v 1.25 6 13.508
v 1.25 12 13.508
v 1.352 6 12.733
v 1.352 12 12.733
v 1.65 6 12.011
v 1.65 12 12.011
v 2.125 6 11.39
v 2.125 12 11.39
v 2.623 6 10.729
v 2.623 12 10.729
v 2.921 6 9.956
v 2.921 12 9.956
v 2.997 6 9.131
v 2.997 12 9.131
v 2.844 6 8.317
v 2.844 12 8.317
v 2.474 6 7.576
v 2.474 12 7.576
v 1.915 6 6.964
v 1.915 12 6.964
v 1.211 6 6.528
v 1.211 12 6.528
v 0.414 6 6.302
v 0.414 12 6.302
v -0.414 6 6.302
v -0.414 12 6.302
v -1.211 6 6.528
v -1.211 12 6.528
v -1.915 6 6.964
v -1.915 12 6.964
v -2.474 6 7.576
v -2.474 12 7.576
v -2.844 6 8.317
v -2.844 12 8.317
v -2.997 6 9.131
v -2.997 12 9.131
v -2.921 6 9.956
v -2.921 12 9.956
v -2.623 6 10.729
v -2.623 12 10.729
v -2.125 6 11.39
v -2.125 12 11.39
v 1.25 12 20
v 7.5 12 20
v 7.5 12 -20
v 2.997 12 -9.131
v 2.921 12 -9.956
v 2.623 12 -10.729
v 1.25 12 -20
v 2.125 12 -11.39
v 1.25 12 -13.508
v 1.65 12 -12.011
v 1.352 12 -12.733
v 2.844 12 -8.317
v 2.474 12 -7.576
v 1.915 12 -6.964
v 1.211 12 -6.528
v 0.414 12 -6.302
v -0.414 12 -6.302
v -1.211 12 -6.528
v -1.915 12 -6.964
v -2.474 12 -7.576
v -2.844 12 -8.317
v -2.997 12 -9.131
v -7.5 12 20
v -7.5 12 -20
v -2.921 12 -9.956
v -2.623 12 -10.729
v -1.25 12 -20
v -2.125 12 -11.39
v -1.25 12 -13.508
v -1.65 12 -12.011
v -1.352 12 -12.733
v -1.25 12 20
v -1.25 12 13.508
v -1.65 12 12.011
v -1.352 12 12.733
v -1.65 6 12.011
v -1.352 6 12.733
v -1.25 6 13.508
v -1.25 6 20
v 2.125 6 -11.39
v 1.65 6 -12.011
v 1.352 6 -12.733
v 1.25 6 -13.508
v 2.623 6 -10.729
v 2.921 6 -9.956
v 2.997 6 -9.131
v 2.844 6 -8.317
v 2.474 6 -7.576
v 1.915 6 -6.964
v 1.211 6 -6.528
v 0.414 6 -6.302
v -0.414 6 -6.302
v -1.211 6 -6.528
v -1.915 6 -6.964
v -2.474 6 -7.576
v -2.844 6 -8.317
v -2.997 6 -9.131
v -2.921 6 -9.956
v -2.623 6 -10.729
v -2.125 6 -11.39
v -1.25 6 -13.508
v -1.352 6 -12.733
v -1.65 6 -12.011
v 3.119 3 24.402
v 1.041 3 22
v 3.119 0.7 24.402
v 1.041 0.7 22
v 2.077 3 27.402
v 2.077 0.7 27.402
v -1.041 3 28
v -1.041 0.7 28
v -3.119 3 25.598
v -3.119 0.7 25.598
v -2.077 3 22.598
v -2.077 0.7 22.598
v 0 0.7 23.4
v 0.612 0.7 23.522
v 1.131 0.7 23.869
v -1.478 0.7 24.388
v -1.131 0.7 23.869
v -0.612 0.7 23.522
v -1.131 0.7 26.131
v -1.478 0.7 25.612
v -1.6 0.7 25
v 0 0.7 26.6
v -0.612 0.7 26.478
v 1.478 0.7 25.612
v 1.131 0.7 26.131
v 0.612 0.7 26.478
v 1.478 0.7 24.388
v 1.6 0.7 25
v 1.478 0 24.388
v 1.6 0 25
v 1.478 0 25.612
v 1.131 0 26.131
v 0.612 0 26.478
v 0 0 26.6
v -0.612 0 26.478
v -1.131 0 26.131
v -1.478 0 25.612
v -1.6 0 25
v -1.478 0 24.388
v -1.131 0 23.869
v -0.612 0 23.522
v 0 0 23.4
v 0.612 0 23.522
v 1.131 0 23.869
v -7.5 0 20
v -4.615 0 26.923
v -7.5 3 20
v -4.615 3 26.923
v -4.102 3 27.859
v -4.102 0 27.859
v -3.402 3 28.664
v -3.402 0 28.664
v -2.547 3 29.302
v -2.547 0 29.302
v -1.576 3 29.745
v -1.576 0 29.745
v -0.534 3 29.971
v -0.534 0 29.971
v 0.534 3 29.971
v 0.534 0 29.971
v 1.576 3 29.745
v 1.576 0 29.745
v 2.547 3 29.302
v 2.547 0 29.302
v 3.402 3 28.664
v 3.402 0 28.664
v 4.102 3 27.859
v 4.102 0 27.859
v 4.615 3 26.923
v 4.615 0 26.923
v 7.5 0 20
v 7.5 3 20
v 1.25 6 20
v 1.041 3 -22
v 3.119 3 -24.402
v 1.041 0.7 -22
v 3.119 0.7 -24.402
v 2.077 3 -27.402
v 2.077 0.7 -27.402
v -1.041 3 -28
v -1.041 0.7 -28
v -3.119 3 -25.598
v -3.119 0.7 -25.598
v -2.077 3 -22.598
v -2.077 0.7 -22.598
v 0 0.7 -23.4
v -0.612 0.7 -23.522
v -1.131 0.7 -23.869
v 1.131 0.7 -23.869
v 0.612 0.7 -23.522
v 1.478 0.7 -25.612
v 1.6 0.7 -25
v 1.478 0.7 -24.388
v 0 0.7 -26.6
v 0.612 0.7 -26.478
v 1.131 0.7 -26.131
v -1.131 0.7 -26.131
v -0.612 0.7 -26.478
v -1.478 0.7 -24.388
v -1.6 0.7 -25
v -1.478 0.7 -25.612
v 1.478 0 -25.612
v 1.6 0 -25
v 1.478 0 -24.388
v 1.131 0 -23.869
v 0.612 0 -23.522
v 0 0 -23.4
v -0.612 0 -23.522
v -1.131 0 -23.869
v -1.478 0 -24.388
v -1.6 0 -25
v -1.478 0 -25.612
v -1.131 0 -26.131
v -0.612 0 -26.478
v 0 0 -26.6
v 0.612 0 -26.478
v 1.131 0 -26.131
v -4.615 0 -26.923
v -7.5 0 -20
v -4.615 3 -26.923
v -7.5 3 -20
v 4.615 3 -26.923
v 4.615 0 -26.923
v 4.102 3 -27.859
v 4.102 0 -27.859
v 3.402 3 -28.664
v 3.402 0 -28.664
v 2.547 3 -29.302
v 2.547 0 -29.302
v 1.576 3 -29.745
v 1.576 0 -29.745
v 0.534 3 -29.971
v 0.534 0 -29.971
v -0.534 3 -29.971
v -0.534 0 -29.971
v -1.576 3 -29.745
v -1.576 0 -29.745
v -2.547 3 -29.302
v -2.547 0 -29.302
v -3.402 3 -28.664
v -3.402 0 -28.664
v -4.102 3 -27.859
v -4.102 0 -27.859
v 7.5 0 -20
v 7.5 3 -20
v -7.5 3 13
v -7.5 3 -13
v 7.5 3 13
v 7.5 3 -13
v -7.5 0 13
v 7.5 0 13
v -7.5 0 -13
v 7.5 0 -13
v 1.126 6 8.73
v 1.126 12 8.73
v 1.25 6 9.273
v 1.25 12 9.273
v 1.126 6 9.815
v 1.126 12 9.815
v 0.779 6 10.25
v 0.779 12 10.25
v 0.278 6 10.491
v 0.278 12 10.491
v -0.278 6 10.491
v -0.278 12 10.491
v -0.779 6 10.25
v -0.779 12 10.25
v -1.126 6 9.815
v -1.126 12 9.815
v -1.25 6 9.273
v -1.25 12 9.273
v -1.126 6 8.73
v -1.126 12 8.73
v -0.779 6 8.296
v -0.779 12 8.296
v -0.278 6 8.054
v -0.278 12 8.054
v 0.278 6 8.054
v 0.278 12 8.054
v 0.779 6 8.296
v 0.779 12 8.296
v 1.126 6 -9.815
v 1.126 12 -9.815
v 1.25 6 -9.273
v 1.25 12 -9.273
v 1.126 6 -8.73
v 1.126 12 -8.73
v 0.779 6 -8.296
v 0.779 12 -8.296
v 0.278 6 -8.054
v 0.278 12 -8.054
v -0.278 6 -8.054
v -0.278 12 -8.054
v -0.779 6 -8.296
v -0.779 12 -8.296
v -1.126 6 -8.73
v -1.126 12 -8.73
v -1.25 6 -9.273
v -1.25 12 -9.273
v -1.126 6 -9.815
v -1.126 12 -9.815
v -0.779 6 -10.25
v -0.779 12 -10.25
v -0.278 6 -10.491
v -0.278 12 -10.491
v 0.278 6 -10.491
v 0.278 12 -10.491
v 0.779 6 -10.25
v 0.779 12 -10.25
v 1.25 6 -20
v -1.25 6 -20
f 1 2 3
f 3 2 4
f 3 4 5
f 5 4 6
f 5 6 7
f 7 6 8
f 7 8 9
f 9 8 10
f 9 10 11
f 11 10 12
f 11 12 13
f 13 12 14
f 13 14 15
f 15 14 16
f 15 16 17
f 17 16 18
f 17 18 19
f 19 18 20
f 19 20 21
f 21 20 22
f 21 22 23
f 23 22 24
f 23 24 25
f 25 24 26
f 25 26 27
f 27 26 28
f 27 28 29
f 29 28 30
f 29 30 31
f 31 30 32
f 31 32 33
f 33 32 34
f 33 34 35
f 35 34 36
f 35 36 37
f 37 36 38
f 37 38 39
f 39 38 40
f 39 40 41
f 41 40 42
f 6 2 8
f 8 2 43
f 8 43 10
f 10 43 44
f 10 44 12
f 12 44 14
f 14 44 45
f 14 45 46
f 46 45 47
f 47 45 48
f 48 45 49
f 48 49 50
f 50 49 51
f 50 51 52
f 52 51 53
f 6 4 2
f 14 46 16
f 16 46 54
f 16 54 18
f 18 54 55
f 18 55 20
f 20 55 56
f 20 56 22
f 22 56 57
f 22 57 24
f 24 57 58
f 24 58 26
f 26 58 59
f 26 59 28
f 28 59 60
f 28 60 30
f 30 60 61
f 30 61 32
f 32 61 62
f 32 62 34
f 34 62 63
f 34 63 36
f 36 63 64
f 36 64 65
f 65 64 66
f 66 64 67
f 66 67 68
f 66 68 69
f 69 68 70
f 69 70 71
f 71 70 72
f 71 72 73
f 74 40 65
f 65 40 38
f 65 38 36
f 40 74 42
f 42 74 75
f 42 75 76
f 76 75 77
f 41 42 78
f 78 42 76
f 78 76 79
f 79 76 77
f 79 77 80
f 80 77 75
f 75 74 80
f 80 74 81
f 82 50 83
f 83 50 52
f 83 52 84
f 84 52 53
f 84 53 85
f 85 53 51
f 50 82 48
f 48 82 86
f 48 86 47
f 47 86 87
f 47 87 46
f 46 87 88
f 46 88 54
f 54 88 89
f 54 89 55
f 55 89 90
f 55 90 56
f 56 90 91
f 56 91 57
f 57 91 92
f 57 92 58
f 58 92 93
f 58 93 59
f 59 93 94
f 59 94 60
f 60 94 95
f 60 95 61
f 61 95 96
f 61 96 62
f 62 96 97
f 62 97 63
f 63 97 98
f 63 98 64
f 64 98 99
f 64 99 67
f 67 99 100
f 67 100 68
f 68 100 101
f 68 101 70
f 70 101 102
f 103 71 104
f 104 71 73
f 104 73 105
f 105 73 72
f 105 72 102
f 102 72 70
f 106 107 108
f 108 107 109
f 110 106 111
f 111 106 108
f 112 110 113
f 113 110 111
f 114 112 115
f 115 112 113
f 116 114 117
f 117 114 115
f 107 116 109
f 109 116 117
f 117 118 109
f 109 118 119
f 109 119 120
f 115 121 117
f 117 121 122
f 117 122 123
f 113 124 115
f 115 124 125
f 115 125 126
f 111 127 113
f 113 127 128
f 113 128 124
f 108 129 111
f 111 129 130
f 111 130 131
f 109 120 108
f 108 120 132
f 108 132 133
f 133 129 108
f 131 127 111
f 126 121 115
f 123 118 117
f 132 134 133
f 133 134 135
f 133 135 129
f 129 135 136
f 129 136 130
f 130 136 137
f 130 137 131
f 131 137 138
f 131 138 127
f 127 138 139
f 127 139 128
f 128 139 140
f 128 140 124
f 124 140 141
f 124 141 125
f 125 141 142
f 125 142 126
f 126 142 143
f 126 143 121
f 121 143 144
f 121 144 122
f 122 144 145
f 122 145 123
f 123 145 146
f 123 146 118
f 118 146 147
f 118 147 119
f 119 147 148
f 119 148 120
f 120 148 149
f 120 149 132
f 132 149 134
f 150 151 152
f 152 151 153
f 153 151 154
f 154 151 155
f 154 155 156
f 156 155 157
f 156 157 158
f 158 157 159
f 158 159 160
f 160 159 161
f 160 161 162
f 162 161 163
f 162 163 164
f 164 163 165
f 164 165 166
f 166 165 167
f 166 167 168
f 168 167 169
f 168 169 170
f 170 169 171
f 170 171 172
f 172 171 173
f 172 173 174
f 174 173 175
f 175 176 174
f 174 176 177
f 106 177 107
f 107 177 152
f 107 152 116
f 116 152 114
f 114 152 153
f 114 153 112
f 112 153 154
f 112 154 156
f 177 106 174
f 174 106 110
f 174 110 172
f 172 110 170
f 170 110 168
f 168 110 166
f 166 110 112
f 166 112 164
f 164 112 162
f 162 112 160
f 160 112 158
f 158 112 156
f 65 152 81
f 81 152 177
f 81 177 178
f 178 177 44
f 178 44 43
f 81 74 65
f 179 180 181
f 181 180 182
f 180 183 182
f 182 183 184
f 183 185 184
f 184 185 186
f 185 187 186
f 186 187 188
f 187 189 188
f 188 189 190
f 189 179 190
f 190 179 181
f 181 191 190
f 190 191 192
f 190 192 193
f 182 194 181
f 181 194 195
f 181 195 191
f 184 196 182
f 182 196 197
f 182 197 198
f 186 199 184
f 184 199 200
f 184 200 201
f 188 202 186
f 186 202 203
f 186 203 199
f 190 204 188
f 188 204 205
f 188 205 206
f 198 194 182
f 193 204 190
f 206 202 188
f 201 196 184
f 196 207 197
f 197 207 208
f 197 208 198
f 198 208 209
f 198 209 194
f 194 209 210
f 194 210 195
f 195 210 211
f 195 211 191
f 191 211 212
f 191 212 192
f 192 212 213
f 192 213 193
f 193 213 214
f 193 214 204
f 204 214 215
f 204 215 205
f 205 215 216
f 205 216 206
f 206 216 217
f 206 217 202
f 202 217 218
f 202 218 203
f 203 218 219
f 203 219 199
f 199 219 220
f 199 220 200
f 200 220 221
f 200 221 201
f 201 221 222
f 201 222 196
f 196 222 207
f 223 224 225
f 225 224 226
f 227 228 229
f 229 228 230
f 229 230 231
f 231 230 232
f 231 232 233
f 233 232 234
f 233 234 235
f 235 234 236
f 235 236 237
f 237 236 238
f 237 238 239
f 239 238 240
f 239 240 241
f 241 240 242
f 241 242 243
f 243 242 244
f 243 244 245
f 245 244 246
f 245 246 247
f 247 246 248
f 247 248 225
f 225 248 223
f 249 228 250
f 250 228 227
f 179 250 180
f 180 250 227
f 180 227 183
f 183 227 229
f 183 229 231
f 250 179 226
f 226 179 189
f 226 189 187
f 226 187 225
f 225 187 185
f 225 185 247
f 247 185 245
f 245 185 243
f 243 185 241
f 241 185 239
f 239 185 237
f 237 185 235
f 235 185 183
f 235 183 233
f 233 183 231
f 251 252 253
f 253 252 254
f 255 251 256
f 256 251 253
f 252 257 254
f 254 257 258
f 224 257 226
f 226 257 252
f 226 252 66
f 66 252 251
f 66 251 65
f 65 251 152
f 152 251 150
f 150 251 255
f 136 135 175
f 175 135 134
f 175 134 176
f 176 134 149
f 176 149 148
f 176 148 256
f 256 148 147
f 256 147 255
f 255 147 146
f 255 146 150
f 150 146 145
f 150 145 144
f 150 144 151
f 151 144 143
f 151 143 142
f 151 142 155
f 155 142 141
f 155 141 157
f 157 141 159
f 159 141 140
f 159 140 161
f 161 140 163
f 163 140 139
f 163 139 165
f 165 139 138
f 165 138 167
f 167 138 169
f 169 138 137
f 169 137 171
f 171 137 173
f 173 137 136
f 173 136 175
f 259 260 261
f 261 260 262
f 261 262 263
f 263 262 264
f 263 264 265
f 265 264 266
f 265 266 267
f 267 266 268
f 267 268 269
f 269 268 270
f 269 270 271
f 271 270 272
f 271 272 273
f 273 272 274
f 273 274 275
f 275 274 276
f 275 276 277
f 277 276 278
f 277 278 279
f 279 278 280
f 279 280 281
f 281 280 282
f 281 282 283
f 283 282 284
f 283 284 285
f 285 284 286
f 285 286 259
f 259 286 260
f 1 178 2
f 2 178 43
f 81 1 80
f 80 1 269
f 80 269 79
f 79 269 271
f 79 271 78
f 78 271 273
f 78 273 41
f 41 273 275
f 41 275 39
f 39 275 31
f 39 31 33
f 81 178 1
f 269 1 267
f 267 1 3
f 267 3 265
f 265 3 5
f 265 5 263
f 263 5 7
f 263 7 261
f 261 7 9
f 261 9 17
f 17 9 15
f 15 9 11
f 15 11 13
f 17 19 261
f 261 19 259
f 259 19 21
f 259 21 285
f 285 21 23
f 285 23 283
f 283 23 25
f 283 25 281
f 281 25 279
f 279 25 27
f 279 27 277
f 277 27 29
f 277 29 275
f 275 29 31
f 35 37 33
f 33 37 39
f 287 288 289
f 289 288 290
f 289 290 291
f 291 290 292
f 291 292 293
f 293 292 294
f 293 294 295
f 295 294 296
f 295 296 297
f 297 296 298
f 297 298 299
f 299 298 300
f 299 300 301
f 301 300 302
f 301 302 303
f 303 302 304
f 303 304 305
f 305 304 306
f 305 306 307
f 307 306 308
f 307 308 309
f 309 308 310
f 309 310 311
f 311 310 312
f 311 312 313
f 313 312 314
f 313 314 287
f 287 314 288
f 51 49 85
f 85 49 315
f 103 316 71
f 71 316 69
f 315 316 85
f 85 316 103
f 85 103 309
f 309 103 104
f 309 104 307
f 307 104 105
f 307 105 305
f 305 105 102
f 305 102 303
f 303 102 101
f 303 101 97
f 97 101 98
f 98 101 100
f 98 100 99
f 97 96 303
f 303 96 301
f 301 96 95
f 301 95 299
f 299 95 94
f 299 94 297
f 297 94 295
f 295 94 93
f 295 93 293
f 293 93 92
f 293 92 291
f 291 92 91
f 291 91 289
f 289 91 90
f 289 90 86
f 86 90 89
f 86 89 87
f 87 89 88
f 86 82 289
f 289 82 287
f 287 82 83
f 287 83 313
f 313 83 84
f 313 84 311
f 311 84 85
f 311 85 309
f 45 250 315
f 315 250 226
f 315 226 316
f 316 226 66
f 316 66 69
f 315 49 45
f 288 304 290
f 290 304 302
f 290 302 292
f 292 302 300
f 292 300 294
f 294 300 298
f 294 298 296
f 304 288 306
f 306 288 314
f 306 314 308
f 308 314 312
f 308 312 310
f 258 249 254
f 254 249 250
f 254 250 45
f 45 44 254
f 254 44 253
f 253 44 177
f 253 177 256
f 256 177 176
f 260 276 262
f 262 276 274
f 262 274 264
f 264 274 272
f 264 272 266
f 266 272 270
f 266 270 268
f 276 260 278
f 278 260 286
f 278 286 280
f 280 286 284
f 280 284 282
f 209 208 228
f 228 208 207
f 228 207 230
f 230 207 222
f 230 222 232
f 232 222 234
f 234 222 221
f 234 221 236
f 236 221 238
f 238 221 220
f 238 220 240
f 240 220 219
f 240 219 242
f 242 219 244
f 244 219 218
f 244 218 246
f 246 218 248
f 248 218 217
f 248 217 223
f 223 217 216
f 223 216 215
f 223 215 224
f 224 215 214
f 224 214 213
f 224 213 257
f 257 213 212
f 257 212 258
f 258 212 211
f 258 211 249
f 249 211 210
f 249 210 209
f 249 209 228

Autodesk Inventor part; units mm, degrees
ref_plane "YZ Plane" through (0, 0, 0) normal (1, 0, 0) x (0, 1, 0)
ref_plane "XZ Plane" through (0, 0, 0) normal (0, 1, 0) x (-1, 0, 0)
ref_plane "XY Plane" through (0, 0, 0) normal (0, 0, 1) x (1, 0, 0)
sketch "Эскиз1" plane through (0, 0, 0) normal (0, 1, 0) x (-1, 0, 0)
  line L0 (-7.5, 20) -> (7.5, 20)
  line L1 (7.5, 20) -> (7.5, -20)
  line L2 (7.5, -20) -> (-7.5, -20)
  line L3 (-7.5, -20) -> (-7.5, 20)
  line L4 (-7.5, 20) -> (7.5, -20) construction
  line L5 (7.5, 20) -> (-7.5, -20) construction
  line L6 (-1.05, 20) -> (1.05, 20)
  line L7 (1.05, 20) -> (1.05, 10)
  line L8 (1.05, 10) -> (-1.05, 10)
  line L9 (-1.05, 10) -> (-1.05, 20)
  circle A0 centre (0, 7.1898) radius 3
  circle A1 centre (0, 7.1898) radius 2
  point P0 (0, 0)
  point P1 (0, 20)
  dimension "d0" = 40
  dimension "d1" = 15
  dimension "d2" = 2.1
  dimension "d3" = 10
  dimension "d7" = 6
  dimension "d8" = 4
extrude "Выдавливание1" add sketch "Эскиз1" along normal blind 12 contours L0 L9 A0 L7 L1 L2 L3 | L0 L7 A0 L9 | A0 L8 | L8 A0 | A1
sketch "Эскиз2" plane through (0, 12, 0) normal (0, 1, 0) x (1, 0, 0)
  line L0 (1.25, 20) -> (1.25, 12)
  line L1 (1.25, 12) -> (-1.25, 12)
  line L2 (-1.25, 12) -> (-1.25, 20)
  circle A0 centre (0, 9.2728) radius 3
  circle A1 centre (0, 9.2728) radius 1.25
  line L3 (7.5, -20) -> (7.5, 20) projected
  line L4 (7.5, 20) -> (-7.5, 20) projected
  line L5 (-7.5, 20) -> (-7.5, -20) projected
  line L6 (-7.5, -20) -> (7.5, -20) projected
  line L7 (-1.25, 20) -> (1.25, 20)
  point P0 (0, 20)
  dimension "d13" = 2.5
  dimension "d14" = 8
  dimension "d15" = 6
  dimension "d16" = 2.5
  dimension "d23" = 8
extrude "Выдавливание2" cut sketch "Эскиз2" against normal blind 6 contours L0 A0 L2 L4 | A0 L1 | L1 A0
mirror "Зеркальное отражение1" about plane through (0, 0, 0) normal (0, 0, 1) of "Выдавливание2"
sketch "Эскиз3" plane through (7.5, 0, 20) normal (1, 0, 0) x (0, 0, -1)
  line L0 (7, 3) -> (33, 3)
  line L1 (33, 3) -> (33, 0)
  line L2 (33, 0) -> (7, 0)
  line L3 (7, 0) -> (7, 3)
  line L4 (7, 3) -> (33, 0) construction
  line L5 (33, 3) -> (7, 0) construction
  line L6 (0, 0) -> (40, 0) projected
  point P0 (20, 0)
  point P1 (20, 1.5)
  point P2 (20, 0)
  dimension "d19" = 26
  dimension "d20" = 3
extrude "Выдавливание3" cut sketch "Эскиз3" against normal up to surface (15 mm away)
sketch "Эскиз4" plane through (0, 0, 0) normal (0, -1, 0) x (1, 0, 0)
  circle A0 centre (0, -25) radius 5
  circle A1 centre (0, -25) radius 1.6
  line L0 (7.5, 20) -> (7.5, -20) projected
  line L1 (7.5, -20) -> (4.6154, -26.9231)
  line L2 (-1.25, -20) -> (-7.5, -20) projected
  line L3 (-4.6154, -26.9231) -> (-7.5, -20)
  line L4 (7.5, -20) -> (-7.5, -20) projected
  point P0 (0, 0)
  dimension "d24" = 10
  dimension "d25" = 3.2
extrude "Выдавливание4" add sketch "Эскиз4" against normal blind 3
sketch "Эскиз5" plane through (0, 3, 0) normal (0, 1, 0) x (1, 0, 0)
  circle A0 centre (0, 25) radius 1.6 projected
  arc A1 (4.6154, 26.9231) -> (-4.6154, 26.9231) centre (0, 25) ccw projected
  line L0 (-3.1186, 25.5982) -> (-1.0412, 27.9999)
  line L1 (-1.0412, 27.9999) -> (2.0774, 27.4016)
  line L2 (2.0774, 27.4016) -> (3.1186, 24.4018)
  line L3 (3.1186, 24.4018) -> (1.0412, 22.0001)
  line L4 (1.0412, 22.0001) -> (-2.0774, 22.5984)
  line L5 (-2.0774, 22.5984) -> (-3.1186, 25.5982)
  point P0 (0, 0)
  point P1 (-2.598, 24.0983)
  point P2 (2.598, 25.9017)
  dimension "d32" = 5.5
extrude "Выдавливание5" cut sketch "Эскиз5" against normal blind 2.3
mirror "Зеркальное отражение2" about plane through (0, 0, 0) normal (0, 0, 1) of "Выдавливание4", "Выдавливание5"
fillet "Сопряжение1" radius 3 4 edges at (-1.25, 9, -12) (1.25, 9, -12) (-1.25, 9, 12) (1.25, 9, 12)
properties part number "крепление_ремня_новое"
